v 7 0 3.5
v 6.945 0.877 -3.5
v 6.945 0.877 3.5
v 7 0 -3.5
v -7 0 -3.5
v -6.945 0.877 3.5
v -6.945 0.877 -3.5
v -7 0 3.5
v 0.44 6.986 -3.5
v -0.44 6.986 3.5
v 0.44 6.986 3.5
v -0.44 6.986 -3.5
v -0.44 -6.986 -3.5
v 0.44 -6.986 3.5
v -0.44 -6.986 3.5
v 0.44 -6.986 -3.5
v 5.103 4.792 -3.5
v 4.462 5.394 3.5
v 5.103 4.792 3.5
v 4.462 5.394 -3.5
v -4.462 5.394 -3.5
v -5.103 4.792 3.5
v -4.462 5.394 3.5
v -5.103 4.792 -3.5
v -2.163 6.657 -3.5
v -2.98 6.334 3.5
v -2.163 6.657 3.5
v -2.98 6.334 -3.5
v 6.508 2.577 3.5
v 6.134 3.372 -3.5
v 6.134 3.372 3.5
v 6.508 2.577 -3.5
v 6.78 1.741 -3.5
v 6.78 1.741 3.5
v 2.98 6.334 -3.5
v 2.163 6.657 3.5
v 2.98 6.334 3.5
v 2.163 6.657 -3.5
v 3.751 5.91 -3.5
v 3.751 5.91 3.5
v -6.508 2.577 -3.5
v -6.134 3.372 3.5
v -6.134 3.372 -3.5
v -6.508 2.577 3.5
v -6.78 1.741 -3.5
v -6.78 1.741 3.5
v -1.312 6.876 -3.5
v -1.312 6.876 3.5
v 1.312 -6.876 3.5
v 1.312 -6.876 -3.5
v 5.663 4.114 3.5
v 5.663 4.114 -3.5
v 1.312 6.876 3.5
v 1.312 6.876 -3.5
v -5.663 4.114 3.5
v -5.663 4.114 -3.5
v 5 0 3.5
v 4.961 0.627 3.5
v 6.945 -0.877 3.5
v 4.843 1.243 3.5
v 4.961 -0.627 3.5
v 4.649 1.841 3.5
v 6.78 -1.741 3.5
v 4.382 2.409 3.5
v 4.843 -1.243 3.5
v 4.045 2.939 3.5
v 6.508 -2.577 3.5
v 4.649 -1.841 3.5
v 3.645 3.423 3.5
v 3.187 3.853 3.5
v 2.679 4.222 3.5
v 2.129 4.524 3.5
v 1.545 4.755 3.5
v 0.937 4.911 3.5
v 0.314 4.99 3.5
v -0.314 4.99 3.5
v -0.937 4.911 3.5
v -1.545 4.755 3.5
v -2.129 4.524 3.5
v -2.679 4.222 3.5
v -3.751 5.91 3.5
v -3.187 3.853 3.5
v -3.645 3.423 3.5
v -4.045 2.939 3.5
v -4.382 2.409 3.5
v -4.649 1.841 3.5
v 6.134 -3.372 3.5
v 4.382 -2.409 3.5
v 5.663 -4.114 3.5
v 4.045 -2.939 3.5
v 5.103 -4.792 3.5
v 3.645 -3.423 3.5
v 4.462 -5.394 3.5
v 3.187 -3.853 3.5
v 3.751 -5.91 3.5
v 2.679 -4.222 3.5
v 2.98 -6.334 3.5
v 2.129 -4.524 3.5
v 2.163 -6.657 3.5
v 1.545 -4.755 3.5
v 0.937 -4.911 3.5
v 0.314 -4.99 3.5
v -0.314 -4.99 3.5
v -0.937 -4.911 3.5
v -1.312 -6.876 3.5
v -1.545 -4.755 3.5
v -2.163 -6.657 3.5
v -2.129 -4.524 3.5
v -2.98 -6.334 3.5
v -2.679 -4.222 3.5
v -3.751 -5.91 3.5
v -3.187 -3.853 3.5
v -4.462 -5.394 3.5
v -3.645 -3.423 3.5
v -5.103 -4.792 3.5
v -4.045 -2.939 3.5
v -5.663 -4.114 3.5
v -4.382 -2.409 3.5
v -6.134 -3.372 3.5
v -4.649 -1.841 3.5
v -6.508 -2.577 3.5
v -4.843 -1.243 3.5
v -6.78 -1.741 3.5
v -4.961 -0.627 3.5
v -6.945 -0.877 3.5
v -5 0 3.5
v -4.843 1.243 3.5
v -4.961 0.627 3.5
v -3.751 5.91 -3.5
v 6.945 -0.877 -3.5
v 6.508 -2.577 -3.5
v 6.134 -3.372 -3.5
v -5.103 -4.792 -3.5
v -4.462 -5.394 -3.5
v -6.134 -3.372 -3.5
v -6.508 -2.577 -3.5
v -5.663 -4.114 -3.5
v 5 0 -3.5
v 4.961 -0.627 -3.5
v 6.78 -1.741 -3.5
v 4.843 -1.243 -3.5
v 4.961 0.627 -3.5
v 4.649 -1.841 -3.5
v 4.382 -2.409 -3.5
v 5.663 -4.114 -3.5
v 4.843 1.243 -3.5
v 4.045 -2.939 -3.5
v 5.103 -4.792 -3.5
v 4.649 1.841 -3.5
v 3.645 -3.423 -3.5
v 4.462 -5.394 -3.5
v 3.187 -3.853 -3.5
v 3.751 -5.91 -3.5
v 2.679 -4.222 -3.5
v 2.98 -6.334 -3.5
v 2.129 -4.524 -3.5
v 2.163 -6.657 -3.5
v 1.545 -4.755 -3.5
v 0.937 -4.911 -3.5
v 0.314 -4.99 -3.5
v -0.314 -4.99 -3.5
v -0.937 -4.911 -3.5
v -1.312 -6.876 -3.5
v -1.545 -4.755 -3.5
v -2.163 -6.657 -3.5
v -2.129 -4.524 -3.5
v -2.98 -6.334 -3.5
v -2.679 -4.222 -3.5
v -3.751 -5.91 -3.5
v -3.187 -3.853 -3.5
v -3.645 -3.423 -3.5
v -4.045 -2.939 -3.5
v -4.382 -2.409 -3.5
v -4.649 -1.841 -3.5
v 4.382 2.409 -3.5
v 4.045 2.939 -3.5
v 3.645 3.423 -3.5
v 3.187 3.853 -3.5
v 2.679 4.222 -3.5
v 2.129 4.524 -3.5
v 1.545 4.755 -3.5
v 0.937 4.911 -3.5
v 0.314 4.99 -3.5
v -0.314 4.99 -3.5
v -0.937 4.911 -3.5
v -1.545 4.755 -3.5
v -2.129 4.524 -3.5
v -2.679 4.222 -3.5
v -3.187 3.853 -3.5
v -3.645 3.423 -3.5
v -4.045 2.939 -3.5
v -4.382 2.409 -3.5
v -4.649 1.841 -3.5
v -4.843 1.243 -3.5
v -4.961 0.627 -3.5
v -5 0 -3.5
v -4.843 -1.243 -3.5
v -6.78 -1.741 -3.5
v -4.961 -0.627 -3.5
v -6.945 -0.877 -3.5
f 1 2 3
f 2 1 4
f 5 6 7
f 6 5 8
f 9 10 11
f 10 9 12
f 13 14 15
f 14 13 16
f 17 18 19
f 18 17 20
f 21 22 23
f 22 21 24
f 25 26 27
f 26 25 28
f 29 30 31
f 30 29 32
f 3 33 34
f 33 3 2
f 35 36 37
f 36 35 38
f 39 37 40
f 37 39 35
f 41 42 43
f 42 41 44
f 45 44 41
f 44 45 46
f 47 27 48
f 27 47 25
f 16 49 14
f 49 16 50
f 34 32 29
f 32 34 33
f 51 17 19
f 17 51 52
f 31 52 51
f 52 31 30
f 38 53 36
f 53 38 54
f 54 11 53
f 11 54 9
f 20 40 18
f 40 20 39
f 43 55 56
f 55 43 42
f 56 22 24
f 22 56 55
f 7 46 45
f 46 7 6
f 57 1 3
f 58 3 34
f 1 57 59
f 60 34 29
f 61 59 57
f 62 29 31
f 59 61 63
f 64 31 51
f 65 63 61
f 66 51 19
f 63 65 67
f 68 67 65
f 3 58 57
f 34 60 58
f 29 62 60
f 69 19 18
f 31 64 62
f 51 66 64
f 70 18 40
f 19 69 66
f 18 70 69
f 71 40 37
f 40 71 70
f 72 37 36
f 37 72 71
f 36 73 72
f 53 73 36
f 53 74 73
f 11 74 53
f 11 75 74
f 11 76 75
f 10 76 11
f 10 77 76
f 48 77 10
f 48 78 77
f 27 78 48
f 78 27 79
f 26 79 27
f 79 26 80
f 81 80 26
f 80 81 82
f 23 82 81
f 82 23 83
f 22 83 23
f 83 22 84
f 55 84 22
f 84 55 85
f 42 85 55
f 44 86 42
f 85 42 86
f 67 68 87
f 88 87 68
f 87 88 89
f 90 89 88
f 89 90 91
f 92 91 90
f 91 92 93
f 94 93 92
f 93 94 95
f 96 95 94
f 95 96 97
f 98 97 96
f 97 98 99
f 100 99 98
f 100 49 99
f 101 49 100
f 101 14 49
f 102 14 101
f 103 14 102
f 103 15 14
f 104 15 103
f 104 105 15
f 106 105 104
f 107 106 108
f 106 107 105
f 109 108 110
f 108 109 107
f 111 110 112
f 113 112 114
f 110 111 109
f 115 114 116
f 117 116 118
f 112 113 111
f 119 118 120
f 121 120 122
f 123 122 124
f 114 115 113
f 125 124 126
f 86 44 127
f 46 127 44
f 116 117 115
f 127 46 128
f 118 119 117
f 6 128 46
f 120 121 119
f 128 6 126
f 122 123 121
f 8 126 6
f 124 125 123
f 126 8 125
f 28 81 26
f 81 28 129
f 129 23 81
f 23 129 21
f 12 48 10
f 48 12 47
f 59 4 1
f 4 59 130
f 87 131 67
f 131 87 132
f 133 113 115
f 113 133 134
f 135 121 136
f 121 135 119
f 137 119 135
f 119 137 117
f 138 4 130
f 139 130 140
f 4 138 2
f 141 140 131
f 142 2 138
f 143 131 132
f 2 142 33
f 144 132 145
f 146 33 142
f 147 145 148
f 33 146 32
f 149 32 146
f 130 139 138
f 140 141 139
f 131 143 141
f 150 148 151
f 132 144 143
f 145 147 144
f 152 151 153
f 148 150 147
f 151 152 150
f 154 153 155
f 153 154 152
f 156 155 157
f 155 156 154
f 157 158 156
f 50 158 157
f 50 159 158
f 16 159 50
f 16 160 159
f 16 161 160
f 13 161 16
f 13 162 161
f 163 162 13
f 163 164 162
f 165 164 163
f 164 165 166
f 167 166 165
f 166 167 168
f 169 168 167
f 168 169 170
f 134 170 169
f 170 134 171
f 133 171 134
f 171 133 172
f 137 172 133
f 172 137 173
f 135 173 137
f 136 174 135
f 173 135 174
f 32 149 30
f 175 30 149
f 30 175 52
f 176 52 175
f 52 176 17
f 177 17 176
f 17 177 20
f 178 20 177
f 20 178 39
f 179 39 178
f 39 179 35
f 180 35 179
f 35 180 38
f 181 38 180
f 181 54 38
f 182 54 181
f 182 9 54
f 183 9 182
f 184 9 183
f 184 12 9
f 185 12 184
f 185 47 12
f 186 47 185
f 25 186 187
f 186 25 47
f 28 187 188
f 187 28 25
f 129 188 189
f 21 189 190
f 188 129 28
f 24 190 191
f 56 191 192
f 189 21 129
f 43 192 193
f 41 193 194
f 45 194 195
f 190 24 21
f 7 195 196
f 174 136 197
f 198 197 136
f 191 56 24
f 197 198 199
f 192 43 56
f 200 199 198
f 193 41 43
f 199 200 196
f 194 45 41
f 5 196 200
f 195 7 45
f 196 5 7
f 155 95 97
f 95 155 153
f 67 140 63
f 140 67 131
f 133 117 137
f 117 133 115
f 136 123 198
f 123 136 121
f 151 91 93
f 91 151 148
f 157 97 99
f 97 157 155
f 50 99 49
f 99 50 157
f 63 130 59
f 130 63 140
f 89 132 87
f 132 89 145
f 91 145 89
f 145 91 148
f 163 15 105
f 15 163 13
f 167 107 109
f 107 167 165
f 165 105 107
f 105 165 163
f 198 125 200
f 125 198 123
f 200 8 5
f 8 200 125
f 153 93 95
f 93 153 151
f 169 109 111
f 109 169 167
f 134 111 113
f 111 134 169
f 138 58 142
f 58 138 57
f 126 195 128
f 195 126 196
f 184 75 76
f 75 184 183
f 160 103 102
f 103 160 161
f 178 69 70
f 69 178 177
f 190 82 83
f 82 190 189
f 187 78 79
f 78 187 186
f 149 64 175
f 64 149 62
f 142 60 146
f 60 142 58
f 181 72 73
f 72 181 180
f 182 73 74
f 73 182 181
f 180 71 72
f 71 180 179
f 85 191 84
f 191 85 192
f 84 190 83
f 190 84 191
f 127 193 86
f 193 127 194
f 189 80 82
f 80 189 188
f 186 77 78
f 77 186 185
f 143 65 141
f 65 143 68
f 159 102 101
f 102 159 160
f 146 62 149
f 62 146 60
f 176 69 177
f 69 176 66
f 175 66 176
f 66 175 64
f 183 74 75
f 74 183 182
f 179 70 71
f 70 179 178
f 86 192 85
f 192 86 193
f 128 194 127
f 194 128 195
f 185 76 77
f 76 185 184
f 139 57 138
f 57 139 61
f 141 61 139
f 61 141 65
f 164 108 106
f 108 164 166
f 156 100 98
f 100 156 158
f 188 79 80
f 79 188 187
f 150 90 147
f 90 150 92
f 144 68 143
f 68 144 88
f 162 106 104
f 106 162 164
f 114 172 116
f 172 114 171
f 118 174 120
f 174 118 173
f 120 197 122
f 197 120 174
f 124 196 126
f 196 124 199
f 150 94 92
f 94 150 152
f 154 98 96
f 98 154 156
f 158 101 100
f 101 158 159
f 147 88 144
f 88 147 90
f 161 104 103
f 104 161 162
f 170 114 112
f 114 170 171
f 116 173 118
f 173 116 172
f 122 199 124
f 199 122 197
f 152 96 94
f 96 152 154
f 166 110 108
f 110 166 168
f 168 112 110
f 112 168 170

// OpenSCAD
$fn = 50;


difference() {
	union() {
		translate(v = [0, 0, -3.5000000000]) {
			cylinder(h = 7, r = 7.0000000000);
		}
	}
	union() {
		translate(v = [0, 0, -100.0000000000]) {
			cylinder(h = 200, r = 5);
		}
	}
}
